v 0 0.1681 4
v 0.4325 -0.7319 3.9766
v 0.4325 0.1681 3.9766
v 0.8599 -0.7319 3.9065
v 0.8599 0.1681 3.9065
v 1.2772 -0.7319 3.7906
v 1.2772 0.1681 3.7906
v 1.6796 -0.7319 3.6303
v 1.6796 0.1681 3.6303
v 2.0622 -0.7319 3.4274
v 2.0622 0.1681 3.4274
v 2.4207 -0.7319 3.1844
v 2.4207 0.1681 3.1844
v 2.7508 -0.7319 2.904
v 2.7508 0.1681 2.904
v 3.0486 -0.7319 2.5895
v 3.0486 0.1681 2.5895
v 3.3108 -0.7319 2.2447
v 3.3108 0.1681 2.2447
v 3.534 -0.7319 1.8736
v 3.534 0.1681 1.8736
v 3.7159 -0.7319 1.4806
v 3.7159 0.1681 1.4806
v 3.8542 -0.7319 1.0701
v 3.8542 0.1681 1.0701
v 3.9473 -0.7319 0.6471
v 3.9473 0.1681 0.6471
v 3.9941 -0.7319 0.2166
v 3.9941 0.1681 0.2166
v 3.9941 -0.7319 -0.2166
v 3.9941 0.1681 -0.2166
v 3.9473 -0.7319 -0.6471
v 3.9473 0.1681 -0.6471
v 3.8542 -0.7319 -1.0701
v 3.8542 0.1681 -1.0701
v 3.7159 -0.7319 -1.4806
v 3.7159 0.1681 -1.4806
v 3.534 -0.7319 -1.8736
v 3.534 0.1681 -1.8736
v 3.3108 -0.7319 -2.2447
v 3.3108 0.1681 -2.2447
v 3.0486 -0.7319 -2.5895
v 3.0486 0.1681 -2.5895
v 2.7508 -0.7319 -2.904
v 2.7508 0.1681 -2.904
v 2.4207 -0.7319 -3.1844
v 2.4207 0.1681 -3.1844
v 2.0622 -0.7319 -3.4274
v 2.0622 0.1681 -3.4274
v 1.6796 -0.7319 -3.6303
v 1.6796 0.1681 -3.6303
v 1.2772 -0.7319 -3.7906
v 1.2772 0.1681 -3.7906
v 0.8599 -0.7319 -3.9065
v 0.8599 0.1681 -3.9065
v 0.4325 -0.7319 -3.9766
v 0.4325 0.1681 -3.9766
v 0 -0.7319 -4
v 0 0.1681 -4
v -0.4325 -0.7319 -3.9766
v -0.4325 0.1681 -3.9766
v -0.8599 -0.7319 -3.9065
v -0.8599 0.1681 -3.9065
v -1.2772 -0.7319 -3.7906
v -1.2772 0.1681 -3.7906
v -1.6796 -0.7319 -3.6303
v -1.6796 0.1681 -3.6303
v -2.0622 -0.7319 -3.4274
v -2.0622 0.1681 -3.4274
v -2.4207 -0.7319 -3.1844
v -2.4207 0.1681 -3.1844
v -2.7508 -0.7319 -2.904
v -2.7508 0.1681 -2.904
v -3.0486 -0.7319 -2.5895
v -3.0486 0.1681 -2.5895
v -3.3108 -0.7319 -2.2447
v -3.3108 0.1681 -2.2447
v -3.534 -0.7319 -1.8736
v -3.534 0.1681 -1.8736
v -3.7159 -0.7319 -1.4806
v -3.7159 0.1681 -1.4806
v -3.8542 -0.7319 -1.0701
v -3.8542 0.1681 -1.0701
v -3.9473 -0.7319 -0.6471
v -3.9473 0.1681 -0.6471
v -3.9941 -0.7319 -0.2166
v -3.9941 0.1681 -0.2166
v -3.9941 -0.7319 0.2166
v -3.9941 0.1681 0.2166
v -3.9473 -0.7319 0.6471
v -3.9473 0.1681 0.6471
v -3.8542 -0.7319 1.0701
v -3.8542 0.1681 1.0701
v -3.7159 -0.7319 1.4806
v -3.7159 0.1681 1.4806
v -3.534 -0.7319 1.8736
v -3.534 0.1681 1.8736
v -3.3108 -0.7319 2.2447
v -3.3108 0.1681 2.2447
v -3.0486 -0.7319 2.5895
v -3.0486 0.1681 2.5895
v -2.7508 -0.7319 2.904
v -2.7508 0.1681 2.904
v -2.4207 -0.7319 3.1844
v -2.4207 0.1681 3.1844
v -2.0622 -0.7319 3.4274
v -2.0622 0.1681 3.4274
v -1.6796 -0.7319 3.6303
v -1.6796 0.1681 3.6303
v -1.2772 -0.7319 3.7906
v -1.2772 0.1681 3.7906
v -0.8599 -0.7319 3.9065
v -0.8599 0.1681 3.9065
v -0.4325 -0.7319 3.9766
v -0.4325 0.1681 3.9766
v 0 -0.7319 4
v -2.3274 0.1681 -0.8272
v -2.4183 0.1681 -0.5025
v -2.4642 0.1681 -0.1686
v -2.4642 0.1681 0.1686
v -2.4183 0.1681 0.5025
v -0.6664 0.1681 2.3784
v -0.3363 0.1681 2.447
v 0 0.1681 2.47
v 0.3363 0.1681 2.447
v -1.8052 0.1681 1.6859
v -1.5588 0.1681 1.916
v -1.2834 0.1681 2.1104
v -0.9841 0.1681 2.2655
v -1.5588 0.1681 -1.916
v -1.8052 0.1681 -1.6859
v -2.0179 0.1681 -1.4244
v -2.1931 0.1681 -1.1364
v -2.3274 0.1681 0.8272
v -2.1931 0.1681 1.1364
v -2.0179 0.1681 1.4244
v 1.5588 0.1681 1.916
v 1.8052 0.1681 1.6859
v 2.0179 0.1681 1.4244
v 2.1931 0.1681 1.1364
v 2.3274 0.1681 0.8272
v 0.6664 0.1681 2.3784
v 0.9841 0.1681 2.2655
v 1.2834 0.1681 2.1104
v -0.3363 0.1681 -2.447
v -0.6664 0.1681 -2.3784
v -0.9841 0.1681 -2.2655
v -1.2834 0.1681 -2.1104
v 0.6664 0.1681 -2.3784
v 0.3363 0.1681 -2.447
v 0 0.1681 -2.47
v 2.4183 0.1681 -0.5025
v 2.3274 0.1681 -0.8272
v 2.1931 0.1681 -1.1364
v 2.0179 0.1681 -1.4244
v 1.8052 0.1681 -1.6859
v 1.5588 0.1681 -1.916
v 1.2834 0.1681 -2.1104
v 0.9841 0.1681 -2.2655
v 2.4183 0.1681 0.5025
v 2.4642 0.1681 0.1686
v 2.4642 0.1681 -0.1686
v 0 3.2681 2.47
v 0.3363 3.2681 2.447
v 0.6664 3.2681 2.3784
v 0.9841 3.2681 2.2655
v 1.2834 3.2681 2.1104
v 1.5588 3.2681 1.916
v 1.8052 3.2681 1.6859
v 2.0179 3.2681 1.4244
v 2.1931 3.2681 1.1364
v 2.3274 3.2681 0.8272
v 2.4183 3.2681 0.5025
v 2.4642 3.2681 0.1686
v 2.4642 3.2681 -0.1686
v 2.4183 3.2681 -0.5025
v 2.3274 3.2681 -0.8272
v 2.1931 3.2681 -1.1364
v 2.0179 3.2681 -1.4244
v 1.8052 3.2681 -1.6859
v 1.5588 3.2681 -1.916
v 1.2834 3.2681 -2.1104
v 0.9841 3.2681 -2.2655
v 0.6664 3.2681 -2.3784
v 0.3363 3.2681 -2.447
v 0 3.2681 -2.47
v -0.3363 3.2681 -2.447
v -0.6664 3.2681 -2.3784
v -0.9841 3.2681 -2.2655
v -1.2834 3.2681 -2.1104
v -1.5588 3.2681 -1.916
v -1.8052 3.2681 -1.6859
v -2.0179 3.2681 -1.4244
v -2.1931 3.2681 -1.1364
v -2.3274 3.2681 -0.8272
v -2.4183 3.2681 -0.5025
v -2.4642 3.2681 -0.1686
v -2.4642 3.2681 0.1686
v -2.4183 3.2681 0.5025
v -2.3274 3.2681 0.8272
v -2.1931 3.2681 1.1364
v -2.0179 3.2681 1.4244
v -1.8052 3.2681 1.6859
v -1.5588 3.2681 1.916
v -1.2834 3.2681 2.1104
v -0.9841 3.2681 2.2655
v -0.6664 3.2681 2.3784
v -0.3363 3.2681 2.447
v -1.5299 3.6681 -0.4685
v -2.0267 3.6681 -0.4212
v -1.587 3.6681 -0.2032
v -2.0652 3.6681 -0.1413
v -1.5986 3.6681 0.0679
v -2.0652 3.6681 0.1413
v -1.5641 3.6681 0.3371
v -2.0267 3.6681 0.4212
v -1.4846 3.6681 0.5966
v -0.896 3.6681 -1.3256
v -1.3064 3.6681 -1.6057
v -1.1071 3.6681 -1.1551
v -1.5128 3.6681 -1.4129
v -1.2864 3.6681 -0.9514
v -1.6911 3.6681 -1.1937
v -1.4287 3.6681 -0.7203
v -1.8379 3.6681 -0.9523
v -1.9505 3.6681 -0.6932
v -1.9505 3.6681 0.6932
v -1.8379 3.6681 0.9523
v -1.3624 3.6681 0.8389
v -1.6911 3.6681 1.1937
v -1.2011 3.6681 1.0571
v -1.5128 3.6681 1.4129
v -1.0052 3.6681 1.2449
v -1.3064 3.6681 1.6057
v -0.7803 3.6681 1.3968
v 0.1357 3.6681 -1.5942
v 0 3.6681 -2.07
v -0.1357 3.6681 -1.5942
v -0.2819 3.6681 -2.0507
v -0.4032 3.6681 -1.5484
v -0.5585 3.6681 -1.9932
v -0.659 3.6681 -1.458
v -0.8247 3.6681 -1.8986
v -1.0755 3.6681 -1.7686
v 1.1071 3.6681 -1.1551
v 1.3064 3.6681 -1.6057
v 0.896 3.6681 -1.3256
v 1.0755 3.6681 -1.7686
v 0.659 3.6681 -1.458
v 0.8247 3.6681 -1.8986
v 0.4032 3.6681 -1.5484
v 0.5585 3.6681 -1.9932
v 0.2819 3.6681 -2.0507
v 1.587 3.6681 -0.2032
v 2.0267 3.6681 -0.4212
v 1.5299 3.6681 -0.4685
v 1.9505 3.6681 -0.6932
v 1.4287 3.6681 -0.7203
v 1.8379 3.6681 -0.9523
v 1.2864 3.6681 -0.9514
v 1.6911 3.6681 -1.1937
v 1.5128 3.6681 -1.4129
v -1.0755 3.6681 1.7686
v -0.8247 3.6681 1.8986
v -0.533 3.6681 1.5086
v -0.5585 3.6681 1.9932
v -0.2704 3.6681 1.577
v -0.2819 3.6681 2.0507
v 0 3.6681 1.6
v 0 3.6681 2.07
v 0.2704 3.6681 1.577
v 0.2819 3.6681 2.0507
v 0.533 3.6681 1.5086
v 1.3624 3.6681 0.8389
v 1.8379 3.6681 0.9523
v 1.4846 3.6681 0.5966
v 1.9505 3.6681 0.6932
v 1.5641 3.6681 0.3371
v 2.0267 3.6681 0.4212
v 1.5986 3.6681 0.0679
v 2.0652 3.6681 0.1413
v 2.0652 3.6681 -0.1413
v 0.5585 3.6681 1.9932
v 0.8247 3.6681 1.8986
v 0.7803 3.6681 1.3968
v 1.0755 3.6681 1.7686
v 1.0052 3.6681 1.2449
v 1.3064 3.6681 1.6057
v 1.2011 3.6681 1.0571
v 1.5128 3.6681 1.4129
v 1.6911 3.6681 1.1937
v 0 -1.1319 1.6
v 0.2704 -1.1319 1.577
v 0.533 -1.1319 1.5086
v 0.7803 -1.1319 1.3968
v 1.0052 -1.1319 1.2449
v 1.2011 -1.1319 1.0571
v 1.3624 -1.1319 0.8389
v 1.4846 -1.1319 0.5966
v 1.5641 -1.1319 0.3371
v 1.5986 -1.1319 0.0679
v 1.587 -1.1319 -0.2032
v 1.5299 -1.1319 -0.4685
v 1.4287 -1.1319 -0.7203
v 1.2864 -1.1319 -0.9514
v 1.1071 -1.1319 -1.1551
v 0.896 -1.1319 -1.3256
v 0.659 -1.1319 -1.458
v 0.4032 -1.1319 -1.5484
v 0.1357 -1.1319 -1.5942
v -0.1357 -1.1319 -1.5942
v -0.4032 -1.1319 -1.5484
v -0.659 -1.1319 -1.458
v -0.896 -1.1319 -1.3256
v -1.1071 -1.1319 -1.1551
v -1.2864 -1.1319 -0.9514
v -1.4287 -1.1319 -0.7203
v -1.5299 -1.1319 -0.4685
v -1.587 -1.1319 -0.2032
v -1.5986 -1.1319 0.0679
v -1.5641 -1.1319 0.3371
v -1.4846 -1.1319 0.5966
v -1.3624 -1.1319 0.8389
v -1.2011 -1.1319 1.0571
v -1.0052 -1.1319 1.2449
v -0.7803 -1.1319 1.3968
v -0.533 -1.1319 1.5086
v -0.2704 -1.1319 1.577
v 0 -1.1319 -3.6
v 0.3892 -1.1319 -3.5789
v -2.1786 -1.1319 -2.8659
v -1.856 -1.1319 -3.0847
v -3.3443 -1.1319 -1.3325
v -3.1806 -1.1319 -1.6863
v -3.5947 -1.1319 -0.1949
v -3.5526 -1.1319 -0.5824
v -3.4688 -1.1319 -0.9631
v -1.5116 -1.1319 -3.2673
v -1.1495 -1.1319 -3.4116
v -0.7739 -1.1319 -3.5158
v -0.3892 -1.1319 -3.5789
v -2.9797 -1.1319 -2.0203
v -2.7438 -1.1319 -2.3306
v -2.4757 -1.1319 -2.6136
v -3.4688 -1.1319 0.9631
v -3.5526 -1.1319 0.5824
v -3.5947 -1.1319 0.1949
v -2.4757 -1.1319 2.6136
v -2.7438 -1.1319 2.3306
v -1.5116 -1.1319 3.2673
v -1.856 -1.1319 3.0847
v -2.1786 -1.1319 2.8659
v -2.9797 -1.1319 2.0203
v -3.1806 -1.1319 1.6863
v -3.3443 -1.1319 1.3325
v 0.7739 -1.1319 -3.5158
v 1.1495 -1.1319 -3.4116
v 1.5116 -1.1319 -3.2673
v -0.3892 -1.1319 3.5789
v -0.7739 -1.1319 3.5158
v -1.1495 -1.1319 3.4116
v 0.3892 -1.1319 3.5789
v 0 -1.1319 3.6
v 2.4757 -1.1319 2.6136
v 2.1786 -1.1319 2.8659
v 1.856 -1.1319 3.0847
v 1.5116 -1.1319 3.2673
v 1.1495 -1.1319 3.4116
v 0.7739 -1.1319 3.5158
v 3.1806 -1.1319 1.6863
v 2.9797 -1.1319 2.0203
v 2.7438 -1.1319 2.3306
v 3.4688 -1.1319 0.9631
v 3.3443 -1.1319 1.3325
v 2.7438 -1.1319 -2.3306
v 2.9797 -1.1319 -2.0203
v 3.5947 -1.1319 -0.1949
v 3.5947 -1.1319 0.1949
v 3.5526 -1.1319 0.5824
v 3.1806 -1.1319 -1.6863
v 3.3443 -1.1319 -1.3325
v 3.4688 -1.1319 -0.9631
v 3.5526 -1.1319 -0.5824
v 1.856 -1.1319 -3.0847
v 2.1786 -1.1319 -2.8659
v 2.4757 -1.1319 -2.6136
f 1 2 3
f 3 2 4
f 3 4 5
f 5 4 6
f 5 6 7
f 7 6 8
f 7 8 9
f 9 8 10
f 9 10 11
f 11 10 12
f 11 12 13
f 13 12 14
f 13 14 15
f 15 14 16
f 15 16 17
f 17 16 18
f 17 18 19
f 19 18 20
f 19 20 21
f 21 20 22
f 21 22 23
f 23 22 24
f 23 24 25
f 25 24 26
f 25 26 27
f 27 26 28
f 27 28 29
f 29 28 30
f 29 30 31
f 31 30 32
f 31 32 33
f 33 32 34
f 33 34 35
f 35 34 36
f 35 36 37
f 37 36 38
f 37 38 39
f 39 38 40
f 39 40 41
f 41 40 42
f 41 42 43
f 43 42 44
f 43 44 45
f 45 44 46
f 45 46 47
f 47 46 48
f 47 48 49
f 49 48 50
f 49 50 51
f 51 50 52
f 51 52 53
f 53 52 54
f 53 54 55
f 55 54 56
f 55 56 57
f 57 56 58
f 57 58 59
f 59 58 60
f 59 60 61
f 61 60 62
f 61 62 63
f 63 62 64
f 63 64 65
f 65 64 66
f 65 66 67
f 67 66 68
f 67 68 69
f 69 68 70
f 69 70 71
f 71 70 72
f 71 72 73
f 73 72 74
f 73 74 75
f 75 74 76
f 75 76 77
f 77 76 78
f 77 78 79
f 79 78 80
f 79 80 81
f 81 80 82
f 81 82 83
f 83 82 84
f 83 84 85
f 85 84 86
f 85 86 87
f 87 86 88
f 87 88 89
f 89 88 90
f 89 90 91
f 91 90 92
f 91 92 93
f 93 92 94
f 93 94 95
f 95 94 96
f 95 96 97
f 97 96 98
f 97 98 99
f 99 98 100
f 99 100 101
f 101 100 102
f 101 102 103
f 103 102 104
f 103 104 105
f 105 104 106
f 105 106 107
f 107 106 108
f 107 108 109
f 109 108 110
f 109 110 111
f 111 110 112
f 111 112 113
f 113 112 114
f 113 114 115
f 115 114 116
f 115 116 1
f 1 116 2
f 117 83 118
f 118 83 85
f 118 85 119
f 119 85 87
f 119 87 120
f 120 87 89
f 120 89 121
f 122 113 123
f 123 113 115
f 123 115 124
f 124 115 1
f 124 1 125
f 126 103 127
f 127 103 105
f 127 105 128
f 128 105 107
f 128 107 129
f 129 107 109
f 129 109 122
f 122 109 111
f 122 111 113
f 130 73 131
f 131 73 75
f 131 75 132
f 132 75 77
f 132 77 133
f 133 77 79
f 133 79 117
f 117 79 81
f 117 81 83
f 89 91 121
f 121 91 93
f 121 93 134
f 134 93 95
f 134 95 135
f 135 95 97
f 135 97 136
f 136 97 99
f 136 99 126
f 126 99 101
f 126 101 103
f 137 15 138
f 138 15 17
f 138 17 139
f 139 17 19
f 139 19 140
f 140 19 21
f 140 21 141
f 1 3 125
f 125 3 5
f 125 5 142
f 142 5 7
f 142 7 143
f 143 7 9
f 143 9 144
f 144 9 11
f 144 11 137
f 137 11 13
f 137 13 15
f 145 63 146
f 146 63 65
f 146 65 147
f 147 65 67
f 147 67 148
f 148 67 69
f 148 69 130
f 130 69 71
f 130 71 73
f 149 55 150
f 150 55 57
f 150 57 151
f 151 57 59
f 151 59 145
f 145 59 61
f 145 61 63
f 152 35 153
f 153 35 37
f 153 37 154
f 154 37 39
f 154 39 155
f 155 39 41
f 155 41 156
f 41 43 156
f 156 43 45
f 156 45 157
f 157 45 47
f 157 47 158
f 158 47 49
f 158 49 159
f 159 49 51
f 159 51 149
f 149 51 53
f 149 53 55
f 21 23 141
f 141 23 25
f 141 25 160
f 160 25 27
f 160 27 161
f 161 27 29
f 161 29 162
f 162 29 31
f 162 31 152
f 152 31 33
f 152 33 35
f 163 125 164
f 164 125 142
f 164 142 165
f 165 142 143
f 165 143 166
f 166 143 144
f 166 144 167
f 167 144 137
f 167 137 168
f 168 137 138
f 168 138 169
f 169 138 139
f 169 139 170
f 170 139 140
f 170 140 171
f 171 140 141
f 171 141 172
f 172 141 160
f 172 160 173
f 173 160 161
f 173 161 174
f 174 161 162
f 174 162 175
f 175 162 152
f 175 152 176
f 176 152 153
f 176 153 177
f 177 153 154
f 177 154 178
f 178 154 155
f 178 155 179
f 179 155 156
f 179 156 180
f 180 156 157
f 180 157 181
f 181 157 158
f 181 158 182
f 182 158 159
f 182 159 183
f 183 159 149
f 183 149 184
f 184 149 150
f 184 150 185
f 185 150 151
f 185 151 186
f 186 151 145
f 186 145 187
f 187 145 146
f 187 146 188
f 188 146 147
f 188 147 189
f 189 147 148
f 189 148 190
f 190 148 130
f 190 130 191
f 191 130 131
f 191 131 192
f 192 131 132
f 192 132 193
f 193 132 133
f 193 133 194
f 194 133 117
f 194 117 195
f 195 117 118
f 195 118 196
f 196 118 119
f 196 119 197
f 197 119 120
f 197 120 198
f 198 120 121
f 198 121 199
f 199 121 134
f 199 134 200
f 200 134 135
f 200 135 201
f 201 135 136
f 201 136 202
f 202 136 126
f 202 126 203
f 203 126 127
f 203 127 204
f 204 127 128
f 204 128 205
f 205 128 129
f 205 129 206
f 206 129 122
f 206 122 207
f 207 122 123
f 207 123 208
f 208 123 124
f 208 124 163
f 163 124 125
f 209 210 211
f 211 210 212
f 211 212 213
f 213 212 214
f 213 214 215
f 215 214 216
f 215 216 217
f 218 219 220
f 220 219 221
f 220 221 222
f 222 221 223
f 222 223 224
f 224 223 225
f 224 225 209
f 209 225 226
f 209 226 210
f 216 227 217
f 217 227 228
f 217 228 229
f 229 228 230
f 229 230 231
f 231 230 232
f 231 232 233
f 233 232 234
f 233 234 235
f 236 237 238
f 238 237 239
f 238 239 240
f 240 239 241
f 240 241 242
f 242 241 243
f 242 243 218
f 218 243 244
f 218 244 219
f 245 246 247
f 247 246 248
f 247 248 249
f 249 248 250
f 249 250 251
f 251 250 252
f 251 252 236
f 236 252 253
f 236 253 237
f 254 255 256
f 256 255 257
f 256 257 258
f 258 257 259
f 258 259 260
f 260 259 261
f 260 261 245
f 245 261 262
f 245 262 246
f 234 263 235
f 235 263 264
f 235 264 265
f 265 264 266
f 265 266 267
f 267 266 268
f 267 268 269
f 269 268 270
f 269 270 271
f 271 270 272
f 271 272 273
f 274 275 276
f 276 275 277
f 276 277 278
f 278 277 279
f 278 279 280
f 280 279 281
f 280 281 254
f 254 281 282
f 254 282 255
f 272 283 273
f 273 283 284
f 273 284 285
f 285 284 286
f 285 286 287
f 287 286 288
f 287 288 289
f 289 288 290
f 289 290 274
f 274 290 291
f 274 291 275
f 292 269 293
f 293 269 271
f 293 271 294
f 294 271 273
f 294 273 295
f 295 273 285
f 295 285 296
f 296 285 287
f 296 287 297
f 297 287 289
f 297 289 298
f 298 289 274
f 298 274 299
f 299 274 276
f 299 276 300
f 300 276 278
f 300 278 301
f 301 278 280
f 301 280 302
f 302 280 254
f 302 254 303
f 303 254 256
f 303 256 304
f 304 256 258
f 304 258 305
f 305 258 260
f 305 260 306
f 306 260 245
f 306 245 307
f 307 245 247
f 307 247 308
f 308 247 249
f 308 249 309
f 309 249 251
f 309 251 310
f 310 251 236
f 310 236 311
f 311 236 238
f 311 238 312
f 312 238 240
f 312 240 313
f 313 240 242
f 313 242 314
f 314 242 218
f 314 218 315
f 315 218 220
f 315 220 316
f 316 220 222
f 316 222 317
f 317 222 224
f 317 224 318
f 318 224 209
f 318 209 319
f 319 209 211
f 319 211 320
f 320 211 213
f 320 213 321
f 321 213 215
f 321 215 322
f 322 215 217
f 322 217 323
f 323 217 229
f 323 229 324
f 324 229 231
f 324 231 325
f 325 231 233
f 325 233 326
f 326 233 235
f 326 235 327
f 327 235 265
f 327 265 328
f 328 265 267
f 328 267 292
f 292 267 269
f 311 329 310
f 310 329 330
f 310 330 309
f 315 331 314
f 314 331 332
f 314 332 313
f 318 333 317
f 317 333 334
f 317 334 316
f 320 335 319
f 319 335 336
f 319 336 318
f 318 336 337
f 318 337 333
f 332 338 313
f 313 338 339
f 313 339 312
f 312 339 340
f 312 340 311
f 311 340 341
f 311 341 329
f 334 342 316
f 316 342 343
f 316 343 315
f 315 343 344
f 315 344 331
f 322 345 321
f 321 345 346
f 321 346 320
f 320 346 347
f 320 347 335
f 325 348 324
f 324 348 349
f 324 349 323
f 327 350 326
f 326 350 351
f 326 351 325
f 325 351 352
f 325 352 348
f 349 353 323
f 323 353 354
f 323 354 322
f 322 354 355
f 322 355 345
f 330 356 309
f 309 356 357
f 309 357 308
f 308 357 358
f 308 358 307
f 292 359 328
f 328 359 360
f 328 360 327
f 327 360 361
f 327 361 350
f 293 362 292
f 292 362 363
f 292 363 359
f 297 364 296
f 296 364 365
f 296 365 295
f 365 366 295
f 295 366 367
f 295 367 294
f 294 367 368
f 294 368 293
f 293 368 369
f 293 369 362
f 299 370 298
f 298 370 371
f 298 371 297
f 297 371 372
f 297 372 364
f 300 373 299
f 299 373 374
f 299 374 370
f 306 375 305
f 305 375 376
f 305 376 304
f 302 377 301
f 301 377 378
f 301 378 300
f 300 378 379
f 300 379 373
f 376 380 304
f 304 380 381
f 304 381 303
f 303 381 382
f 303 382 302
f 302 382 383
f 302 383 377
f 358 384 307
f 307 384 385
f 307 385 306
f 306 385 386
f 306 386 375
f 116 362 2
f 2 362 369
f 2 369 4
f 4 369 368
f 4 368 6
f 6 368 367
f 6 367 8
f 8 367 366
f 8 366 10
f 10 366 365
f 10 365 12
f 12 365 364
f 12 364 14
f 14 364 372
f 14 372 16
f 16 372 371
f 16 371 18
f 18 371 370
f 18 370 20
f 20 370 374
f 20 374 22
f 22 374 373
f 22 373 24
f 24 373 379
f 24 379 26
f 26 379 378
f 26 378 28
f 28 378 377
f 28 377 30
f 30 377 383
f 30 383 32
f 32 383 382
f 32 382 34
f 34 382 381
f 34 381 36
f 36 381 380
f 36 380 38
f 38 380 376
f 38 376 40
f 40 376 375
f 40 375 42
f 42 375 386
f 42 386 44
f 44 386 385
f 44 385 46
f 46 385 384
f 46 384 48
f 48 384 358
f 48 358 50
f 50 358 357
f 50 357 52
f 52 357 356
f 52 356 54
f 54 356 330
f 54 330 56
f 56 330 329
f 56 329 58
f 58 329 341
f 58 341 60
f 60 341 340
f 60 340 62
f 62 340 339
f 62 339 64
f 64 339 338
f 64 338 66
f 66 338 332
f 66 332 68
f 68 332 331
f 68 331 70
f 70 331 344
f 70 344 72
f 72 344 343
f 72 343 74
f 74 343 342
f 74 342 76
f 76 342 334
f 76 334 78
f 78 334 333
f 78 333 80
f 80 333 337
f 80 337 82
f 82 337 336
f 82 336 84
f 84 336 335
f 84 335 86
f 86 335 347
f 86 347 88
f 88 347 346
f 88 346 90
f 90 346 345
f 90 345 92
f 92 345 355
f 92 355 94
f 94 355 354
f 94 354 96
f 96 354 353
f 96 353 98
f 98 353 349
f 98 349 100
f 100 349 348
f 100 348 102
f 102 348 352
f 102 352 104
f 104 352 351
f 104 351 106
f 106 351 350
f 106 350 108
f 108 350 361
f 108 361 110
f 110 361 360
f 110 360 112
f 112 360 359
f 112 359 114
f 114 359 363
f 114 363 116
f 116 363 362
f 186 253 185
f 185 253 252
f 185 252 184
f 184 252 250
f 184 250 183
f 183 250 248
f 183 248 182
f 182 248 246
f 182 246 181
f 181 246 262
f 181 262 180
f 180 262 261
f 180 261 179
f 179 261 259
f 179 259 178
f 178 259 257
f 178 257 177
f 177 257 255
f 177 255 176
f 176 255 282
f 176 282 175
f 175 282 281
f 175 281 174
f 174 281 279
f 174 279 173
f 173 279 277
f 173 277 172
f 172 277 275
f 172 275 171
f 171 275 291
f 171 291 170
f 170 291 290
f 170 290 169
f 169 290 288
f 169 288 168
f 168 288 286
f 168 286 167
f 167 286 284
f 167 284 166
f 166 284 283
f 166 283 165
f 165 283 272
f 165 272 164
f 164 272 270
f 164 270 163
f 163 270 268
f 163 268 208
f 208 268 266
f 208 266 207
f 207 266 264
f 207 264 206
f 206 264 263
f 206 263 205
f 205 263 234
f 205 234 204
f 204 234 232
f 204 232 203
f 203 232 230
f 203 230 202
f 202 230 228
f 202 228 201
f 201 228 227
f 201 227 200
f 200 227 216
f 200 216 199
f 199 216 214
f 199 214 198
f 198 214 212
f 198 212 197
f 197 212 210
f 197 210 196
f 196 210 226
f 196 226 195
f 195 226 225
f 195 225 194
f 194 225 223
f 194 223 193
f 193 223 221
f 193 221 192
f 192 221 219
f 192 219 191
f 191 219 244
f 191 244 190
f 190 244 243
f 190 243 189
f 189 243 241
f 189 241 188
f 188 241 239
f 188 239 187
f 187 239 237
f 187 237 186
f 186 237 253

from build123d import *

# Parameters (mm, degrees)
CHANFREIN1_SIZE = 0.4


with BuildPart() as part:
    # Esquisse1 → Révolution1 (revolve)
    with BuildSketch(Plane.XY):
        Polygon((1.6, -1.131933067), (4, -1.131933067), (4, 0.168066933), (2.47, 0.168066933), (2.47, 3.668066933), (1.6, 3.668066933), align=None)
    revolve(axis=Axis((0, 4.72147651, 0), (0, -1, 0)))

    # Chanfrein1
    chanfrein1_edges = [part.edges().sort_by_distance(p)[0] for p in [
        (-4, -1.131933067, 0),
        (-2.47, 3.668066933, 0),
    ]]
    chamfer(chanfrein1_edges, length=CHANFREIN1_SIZE)


solid = part.part
